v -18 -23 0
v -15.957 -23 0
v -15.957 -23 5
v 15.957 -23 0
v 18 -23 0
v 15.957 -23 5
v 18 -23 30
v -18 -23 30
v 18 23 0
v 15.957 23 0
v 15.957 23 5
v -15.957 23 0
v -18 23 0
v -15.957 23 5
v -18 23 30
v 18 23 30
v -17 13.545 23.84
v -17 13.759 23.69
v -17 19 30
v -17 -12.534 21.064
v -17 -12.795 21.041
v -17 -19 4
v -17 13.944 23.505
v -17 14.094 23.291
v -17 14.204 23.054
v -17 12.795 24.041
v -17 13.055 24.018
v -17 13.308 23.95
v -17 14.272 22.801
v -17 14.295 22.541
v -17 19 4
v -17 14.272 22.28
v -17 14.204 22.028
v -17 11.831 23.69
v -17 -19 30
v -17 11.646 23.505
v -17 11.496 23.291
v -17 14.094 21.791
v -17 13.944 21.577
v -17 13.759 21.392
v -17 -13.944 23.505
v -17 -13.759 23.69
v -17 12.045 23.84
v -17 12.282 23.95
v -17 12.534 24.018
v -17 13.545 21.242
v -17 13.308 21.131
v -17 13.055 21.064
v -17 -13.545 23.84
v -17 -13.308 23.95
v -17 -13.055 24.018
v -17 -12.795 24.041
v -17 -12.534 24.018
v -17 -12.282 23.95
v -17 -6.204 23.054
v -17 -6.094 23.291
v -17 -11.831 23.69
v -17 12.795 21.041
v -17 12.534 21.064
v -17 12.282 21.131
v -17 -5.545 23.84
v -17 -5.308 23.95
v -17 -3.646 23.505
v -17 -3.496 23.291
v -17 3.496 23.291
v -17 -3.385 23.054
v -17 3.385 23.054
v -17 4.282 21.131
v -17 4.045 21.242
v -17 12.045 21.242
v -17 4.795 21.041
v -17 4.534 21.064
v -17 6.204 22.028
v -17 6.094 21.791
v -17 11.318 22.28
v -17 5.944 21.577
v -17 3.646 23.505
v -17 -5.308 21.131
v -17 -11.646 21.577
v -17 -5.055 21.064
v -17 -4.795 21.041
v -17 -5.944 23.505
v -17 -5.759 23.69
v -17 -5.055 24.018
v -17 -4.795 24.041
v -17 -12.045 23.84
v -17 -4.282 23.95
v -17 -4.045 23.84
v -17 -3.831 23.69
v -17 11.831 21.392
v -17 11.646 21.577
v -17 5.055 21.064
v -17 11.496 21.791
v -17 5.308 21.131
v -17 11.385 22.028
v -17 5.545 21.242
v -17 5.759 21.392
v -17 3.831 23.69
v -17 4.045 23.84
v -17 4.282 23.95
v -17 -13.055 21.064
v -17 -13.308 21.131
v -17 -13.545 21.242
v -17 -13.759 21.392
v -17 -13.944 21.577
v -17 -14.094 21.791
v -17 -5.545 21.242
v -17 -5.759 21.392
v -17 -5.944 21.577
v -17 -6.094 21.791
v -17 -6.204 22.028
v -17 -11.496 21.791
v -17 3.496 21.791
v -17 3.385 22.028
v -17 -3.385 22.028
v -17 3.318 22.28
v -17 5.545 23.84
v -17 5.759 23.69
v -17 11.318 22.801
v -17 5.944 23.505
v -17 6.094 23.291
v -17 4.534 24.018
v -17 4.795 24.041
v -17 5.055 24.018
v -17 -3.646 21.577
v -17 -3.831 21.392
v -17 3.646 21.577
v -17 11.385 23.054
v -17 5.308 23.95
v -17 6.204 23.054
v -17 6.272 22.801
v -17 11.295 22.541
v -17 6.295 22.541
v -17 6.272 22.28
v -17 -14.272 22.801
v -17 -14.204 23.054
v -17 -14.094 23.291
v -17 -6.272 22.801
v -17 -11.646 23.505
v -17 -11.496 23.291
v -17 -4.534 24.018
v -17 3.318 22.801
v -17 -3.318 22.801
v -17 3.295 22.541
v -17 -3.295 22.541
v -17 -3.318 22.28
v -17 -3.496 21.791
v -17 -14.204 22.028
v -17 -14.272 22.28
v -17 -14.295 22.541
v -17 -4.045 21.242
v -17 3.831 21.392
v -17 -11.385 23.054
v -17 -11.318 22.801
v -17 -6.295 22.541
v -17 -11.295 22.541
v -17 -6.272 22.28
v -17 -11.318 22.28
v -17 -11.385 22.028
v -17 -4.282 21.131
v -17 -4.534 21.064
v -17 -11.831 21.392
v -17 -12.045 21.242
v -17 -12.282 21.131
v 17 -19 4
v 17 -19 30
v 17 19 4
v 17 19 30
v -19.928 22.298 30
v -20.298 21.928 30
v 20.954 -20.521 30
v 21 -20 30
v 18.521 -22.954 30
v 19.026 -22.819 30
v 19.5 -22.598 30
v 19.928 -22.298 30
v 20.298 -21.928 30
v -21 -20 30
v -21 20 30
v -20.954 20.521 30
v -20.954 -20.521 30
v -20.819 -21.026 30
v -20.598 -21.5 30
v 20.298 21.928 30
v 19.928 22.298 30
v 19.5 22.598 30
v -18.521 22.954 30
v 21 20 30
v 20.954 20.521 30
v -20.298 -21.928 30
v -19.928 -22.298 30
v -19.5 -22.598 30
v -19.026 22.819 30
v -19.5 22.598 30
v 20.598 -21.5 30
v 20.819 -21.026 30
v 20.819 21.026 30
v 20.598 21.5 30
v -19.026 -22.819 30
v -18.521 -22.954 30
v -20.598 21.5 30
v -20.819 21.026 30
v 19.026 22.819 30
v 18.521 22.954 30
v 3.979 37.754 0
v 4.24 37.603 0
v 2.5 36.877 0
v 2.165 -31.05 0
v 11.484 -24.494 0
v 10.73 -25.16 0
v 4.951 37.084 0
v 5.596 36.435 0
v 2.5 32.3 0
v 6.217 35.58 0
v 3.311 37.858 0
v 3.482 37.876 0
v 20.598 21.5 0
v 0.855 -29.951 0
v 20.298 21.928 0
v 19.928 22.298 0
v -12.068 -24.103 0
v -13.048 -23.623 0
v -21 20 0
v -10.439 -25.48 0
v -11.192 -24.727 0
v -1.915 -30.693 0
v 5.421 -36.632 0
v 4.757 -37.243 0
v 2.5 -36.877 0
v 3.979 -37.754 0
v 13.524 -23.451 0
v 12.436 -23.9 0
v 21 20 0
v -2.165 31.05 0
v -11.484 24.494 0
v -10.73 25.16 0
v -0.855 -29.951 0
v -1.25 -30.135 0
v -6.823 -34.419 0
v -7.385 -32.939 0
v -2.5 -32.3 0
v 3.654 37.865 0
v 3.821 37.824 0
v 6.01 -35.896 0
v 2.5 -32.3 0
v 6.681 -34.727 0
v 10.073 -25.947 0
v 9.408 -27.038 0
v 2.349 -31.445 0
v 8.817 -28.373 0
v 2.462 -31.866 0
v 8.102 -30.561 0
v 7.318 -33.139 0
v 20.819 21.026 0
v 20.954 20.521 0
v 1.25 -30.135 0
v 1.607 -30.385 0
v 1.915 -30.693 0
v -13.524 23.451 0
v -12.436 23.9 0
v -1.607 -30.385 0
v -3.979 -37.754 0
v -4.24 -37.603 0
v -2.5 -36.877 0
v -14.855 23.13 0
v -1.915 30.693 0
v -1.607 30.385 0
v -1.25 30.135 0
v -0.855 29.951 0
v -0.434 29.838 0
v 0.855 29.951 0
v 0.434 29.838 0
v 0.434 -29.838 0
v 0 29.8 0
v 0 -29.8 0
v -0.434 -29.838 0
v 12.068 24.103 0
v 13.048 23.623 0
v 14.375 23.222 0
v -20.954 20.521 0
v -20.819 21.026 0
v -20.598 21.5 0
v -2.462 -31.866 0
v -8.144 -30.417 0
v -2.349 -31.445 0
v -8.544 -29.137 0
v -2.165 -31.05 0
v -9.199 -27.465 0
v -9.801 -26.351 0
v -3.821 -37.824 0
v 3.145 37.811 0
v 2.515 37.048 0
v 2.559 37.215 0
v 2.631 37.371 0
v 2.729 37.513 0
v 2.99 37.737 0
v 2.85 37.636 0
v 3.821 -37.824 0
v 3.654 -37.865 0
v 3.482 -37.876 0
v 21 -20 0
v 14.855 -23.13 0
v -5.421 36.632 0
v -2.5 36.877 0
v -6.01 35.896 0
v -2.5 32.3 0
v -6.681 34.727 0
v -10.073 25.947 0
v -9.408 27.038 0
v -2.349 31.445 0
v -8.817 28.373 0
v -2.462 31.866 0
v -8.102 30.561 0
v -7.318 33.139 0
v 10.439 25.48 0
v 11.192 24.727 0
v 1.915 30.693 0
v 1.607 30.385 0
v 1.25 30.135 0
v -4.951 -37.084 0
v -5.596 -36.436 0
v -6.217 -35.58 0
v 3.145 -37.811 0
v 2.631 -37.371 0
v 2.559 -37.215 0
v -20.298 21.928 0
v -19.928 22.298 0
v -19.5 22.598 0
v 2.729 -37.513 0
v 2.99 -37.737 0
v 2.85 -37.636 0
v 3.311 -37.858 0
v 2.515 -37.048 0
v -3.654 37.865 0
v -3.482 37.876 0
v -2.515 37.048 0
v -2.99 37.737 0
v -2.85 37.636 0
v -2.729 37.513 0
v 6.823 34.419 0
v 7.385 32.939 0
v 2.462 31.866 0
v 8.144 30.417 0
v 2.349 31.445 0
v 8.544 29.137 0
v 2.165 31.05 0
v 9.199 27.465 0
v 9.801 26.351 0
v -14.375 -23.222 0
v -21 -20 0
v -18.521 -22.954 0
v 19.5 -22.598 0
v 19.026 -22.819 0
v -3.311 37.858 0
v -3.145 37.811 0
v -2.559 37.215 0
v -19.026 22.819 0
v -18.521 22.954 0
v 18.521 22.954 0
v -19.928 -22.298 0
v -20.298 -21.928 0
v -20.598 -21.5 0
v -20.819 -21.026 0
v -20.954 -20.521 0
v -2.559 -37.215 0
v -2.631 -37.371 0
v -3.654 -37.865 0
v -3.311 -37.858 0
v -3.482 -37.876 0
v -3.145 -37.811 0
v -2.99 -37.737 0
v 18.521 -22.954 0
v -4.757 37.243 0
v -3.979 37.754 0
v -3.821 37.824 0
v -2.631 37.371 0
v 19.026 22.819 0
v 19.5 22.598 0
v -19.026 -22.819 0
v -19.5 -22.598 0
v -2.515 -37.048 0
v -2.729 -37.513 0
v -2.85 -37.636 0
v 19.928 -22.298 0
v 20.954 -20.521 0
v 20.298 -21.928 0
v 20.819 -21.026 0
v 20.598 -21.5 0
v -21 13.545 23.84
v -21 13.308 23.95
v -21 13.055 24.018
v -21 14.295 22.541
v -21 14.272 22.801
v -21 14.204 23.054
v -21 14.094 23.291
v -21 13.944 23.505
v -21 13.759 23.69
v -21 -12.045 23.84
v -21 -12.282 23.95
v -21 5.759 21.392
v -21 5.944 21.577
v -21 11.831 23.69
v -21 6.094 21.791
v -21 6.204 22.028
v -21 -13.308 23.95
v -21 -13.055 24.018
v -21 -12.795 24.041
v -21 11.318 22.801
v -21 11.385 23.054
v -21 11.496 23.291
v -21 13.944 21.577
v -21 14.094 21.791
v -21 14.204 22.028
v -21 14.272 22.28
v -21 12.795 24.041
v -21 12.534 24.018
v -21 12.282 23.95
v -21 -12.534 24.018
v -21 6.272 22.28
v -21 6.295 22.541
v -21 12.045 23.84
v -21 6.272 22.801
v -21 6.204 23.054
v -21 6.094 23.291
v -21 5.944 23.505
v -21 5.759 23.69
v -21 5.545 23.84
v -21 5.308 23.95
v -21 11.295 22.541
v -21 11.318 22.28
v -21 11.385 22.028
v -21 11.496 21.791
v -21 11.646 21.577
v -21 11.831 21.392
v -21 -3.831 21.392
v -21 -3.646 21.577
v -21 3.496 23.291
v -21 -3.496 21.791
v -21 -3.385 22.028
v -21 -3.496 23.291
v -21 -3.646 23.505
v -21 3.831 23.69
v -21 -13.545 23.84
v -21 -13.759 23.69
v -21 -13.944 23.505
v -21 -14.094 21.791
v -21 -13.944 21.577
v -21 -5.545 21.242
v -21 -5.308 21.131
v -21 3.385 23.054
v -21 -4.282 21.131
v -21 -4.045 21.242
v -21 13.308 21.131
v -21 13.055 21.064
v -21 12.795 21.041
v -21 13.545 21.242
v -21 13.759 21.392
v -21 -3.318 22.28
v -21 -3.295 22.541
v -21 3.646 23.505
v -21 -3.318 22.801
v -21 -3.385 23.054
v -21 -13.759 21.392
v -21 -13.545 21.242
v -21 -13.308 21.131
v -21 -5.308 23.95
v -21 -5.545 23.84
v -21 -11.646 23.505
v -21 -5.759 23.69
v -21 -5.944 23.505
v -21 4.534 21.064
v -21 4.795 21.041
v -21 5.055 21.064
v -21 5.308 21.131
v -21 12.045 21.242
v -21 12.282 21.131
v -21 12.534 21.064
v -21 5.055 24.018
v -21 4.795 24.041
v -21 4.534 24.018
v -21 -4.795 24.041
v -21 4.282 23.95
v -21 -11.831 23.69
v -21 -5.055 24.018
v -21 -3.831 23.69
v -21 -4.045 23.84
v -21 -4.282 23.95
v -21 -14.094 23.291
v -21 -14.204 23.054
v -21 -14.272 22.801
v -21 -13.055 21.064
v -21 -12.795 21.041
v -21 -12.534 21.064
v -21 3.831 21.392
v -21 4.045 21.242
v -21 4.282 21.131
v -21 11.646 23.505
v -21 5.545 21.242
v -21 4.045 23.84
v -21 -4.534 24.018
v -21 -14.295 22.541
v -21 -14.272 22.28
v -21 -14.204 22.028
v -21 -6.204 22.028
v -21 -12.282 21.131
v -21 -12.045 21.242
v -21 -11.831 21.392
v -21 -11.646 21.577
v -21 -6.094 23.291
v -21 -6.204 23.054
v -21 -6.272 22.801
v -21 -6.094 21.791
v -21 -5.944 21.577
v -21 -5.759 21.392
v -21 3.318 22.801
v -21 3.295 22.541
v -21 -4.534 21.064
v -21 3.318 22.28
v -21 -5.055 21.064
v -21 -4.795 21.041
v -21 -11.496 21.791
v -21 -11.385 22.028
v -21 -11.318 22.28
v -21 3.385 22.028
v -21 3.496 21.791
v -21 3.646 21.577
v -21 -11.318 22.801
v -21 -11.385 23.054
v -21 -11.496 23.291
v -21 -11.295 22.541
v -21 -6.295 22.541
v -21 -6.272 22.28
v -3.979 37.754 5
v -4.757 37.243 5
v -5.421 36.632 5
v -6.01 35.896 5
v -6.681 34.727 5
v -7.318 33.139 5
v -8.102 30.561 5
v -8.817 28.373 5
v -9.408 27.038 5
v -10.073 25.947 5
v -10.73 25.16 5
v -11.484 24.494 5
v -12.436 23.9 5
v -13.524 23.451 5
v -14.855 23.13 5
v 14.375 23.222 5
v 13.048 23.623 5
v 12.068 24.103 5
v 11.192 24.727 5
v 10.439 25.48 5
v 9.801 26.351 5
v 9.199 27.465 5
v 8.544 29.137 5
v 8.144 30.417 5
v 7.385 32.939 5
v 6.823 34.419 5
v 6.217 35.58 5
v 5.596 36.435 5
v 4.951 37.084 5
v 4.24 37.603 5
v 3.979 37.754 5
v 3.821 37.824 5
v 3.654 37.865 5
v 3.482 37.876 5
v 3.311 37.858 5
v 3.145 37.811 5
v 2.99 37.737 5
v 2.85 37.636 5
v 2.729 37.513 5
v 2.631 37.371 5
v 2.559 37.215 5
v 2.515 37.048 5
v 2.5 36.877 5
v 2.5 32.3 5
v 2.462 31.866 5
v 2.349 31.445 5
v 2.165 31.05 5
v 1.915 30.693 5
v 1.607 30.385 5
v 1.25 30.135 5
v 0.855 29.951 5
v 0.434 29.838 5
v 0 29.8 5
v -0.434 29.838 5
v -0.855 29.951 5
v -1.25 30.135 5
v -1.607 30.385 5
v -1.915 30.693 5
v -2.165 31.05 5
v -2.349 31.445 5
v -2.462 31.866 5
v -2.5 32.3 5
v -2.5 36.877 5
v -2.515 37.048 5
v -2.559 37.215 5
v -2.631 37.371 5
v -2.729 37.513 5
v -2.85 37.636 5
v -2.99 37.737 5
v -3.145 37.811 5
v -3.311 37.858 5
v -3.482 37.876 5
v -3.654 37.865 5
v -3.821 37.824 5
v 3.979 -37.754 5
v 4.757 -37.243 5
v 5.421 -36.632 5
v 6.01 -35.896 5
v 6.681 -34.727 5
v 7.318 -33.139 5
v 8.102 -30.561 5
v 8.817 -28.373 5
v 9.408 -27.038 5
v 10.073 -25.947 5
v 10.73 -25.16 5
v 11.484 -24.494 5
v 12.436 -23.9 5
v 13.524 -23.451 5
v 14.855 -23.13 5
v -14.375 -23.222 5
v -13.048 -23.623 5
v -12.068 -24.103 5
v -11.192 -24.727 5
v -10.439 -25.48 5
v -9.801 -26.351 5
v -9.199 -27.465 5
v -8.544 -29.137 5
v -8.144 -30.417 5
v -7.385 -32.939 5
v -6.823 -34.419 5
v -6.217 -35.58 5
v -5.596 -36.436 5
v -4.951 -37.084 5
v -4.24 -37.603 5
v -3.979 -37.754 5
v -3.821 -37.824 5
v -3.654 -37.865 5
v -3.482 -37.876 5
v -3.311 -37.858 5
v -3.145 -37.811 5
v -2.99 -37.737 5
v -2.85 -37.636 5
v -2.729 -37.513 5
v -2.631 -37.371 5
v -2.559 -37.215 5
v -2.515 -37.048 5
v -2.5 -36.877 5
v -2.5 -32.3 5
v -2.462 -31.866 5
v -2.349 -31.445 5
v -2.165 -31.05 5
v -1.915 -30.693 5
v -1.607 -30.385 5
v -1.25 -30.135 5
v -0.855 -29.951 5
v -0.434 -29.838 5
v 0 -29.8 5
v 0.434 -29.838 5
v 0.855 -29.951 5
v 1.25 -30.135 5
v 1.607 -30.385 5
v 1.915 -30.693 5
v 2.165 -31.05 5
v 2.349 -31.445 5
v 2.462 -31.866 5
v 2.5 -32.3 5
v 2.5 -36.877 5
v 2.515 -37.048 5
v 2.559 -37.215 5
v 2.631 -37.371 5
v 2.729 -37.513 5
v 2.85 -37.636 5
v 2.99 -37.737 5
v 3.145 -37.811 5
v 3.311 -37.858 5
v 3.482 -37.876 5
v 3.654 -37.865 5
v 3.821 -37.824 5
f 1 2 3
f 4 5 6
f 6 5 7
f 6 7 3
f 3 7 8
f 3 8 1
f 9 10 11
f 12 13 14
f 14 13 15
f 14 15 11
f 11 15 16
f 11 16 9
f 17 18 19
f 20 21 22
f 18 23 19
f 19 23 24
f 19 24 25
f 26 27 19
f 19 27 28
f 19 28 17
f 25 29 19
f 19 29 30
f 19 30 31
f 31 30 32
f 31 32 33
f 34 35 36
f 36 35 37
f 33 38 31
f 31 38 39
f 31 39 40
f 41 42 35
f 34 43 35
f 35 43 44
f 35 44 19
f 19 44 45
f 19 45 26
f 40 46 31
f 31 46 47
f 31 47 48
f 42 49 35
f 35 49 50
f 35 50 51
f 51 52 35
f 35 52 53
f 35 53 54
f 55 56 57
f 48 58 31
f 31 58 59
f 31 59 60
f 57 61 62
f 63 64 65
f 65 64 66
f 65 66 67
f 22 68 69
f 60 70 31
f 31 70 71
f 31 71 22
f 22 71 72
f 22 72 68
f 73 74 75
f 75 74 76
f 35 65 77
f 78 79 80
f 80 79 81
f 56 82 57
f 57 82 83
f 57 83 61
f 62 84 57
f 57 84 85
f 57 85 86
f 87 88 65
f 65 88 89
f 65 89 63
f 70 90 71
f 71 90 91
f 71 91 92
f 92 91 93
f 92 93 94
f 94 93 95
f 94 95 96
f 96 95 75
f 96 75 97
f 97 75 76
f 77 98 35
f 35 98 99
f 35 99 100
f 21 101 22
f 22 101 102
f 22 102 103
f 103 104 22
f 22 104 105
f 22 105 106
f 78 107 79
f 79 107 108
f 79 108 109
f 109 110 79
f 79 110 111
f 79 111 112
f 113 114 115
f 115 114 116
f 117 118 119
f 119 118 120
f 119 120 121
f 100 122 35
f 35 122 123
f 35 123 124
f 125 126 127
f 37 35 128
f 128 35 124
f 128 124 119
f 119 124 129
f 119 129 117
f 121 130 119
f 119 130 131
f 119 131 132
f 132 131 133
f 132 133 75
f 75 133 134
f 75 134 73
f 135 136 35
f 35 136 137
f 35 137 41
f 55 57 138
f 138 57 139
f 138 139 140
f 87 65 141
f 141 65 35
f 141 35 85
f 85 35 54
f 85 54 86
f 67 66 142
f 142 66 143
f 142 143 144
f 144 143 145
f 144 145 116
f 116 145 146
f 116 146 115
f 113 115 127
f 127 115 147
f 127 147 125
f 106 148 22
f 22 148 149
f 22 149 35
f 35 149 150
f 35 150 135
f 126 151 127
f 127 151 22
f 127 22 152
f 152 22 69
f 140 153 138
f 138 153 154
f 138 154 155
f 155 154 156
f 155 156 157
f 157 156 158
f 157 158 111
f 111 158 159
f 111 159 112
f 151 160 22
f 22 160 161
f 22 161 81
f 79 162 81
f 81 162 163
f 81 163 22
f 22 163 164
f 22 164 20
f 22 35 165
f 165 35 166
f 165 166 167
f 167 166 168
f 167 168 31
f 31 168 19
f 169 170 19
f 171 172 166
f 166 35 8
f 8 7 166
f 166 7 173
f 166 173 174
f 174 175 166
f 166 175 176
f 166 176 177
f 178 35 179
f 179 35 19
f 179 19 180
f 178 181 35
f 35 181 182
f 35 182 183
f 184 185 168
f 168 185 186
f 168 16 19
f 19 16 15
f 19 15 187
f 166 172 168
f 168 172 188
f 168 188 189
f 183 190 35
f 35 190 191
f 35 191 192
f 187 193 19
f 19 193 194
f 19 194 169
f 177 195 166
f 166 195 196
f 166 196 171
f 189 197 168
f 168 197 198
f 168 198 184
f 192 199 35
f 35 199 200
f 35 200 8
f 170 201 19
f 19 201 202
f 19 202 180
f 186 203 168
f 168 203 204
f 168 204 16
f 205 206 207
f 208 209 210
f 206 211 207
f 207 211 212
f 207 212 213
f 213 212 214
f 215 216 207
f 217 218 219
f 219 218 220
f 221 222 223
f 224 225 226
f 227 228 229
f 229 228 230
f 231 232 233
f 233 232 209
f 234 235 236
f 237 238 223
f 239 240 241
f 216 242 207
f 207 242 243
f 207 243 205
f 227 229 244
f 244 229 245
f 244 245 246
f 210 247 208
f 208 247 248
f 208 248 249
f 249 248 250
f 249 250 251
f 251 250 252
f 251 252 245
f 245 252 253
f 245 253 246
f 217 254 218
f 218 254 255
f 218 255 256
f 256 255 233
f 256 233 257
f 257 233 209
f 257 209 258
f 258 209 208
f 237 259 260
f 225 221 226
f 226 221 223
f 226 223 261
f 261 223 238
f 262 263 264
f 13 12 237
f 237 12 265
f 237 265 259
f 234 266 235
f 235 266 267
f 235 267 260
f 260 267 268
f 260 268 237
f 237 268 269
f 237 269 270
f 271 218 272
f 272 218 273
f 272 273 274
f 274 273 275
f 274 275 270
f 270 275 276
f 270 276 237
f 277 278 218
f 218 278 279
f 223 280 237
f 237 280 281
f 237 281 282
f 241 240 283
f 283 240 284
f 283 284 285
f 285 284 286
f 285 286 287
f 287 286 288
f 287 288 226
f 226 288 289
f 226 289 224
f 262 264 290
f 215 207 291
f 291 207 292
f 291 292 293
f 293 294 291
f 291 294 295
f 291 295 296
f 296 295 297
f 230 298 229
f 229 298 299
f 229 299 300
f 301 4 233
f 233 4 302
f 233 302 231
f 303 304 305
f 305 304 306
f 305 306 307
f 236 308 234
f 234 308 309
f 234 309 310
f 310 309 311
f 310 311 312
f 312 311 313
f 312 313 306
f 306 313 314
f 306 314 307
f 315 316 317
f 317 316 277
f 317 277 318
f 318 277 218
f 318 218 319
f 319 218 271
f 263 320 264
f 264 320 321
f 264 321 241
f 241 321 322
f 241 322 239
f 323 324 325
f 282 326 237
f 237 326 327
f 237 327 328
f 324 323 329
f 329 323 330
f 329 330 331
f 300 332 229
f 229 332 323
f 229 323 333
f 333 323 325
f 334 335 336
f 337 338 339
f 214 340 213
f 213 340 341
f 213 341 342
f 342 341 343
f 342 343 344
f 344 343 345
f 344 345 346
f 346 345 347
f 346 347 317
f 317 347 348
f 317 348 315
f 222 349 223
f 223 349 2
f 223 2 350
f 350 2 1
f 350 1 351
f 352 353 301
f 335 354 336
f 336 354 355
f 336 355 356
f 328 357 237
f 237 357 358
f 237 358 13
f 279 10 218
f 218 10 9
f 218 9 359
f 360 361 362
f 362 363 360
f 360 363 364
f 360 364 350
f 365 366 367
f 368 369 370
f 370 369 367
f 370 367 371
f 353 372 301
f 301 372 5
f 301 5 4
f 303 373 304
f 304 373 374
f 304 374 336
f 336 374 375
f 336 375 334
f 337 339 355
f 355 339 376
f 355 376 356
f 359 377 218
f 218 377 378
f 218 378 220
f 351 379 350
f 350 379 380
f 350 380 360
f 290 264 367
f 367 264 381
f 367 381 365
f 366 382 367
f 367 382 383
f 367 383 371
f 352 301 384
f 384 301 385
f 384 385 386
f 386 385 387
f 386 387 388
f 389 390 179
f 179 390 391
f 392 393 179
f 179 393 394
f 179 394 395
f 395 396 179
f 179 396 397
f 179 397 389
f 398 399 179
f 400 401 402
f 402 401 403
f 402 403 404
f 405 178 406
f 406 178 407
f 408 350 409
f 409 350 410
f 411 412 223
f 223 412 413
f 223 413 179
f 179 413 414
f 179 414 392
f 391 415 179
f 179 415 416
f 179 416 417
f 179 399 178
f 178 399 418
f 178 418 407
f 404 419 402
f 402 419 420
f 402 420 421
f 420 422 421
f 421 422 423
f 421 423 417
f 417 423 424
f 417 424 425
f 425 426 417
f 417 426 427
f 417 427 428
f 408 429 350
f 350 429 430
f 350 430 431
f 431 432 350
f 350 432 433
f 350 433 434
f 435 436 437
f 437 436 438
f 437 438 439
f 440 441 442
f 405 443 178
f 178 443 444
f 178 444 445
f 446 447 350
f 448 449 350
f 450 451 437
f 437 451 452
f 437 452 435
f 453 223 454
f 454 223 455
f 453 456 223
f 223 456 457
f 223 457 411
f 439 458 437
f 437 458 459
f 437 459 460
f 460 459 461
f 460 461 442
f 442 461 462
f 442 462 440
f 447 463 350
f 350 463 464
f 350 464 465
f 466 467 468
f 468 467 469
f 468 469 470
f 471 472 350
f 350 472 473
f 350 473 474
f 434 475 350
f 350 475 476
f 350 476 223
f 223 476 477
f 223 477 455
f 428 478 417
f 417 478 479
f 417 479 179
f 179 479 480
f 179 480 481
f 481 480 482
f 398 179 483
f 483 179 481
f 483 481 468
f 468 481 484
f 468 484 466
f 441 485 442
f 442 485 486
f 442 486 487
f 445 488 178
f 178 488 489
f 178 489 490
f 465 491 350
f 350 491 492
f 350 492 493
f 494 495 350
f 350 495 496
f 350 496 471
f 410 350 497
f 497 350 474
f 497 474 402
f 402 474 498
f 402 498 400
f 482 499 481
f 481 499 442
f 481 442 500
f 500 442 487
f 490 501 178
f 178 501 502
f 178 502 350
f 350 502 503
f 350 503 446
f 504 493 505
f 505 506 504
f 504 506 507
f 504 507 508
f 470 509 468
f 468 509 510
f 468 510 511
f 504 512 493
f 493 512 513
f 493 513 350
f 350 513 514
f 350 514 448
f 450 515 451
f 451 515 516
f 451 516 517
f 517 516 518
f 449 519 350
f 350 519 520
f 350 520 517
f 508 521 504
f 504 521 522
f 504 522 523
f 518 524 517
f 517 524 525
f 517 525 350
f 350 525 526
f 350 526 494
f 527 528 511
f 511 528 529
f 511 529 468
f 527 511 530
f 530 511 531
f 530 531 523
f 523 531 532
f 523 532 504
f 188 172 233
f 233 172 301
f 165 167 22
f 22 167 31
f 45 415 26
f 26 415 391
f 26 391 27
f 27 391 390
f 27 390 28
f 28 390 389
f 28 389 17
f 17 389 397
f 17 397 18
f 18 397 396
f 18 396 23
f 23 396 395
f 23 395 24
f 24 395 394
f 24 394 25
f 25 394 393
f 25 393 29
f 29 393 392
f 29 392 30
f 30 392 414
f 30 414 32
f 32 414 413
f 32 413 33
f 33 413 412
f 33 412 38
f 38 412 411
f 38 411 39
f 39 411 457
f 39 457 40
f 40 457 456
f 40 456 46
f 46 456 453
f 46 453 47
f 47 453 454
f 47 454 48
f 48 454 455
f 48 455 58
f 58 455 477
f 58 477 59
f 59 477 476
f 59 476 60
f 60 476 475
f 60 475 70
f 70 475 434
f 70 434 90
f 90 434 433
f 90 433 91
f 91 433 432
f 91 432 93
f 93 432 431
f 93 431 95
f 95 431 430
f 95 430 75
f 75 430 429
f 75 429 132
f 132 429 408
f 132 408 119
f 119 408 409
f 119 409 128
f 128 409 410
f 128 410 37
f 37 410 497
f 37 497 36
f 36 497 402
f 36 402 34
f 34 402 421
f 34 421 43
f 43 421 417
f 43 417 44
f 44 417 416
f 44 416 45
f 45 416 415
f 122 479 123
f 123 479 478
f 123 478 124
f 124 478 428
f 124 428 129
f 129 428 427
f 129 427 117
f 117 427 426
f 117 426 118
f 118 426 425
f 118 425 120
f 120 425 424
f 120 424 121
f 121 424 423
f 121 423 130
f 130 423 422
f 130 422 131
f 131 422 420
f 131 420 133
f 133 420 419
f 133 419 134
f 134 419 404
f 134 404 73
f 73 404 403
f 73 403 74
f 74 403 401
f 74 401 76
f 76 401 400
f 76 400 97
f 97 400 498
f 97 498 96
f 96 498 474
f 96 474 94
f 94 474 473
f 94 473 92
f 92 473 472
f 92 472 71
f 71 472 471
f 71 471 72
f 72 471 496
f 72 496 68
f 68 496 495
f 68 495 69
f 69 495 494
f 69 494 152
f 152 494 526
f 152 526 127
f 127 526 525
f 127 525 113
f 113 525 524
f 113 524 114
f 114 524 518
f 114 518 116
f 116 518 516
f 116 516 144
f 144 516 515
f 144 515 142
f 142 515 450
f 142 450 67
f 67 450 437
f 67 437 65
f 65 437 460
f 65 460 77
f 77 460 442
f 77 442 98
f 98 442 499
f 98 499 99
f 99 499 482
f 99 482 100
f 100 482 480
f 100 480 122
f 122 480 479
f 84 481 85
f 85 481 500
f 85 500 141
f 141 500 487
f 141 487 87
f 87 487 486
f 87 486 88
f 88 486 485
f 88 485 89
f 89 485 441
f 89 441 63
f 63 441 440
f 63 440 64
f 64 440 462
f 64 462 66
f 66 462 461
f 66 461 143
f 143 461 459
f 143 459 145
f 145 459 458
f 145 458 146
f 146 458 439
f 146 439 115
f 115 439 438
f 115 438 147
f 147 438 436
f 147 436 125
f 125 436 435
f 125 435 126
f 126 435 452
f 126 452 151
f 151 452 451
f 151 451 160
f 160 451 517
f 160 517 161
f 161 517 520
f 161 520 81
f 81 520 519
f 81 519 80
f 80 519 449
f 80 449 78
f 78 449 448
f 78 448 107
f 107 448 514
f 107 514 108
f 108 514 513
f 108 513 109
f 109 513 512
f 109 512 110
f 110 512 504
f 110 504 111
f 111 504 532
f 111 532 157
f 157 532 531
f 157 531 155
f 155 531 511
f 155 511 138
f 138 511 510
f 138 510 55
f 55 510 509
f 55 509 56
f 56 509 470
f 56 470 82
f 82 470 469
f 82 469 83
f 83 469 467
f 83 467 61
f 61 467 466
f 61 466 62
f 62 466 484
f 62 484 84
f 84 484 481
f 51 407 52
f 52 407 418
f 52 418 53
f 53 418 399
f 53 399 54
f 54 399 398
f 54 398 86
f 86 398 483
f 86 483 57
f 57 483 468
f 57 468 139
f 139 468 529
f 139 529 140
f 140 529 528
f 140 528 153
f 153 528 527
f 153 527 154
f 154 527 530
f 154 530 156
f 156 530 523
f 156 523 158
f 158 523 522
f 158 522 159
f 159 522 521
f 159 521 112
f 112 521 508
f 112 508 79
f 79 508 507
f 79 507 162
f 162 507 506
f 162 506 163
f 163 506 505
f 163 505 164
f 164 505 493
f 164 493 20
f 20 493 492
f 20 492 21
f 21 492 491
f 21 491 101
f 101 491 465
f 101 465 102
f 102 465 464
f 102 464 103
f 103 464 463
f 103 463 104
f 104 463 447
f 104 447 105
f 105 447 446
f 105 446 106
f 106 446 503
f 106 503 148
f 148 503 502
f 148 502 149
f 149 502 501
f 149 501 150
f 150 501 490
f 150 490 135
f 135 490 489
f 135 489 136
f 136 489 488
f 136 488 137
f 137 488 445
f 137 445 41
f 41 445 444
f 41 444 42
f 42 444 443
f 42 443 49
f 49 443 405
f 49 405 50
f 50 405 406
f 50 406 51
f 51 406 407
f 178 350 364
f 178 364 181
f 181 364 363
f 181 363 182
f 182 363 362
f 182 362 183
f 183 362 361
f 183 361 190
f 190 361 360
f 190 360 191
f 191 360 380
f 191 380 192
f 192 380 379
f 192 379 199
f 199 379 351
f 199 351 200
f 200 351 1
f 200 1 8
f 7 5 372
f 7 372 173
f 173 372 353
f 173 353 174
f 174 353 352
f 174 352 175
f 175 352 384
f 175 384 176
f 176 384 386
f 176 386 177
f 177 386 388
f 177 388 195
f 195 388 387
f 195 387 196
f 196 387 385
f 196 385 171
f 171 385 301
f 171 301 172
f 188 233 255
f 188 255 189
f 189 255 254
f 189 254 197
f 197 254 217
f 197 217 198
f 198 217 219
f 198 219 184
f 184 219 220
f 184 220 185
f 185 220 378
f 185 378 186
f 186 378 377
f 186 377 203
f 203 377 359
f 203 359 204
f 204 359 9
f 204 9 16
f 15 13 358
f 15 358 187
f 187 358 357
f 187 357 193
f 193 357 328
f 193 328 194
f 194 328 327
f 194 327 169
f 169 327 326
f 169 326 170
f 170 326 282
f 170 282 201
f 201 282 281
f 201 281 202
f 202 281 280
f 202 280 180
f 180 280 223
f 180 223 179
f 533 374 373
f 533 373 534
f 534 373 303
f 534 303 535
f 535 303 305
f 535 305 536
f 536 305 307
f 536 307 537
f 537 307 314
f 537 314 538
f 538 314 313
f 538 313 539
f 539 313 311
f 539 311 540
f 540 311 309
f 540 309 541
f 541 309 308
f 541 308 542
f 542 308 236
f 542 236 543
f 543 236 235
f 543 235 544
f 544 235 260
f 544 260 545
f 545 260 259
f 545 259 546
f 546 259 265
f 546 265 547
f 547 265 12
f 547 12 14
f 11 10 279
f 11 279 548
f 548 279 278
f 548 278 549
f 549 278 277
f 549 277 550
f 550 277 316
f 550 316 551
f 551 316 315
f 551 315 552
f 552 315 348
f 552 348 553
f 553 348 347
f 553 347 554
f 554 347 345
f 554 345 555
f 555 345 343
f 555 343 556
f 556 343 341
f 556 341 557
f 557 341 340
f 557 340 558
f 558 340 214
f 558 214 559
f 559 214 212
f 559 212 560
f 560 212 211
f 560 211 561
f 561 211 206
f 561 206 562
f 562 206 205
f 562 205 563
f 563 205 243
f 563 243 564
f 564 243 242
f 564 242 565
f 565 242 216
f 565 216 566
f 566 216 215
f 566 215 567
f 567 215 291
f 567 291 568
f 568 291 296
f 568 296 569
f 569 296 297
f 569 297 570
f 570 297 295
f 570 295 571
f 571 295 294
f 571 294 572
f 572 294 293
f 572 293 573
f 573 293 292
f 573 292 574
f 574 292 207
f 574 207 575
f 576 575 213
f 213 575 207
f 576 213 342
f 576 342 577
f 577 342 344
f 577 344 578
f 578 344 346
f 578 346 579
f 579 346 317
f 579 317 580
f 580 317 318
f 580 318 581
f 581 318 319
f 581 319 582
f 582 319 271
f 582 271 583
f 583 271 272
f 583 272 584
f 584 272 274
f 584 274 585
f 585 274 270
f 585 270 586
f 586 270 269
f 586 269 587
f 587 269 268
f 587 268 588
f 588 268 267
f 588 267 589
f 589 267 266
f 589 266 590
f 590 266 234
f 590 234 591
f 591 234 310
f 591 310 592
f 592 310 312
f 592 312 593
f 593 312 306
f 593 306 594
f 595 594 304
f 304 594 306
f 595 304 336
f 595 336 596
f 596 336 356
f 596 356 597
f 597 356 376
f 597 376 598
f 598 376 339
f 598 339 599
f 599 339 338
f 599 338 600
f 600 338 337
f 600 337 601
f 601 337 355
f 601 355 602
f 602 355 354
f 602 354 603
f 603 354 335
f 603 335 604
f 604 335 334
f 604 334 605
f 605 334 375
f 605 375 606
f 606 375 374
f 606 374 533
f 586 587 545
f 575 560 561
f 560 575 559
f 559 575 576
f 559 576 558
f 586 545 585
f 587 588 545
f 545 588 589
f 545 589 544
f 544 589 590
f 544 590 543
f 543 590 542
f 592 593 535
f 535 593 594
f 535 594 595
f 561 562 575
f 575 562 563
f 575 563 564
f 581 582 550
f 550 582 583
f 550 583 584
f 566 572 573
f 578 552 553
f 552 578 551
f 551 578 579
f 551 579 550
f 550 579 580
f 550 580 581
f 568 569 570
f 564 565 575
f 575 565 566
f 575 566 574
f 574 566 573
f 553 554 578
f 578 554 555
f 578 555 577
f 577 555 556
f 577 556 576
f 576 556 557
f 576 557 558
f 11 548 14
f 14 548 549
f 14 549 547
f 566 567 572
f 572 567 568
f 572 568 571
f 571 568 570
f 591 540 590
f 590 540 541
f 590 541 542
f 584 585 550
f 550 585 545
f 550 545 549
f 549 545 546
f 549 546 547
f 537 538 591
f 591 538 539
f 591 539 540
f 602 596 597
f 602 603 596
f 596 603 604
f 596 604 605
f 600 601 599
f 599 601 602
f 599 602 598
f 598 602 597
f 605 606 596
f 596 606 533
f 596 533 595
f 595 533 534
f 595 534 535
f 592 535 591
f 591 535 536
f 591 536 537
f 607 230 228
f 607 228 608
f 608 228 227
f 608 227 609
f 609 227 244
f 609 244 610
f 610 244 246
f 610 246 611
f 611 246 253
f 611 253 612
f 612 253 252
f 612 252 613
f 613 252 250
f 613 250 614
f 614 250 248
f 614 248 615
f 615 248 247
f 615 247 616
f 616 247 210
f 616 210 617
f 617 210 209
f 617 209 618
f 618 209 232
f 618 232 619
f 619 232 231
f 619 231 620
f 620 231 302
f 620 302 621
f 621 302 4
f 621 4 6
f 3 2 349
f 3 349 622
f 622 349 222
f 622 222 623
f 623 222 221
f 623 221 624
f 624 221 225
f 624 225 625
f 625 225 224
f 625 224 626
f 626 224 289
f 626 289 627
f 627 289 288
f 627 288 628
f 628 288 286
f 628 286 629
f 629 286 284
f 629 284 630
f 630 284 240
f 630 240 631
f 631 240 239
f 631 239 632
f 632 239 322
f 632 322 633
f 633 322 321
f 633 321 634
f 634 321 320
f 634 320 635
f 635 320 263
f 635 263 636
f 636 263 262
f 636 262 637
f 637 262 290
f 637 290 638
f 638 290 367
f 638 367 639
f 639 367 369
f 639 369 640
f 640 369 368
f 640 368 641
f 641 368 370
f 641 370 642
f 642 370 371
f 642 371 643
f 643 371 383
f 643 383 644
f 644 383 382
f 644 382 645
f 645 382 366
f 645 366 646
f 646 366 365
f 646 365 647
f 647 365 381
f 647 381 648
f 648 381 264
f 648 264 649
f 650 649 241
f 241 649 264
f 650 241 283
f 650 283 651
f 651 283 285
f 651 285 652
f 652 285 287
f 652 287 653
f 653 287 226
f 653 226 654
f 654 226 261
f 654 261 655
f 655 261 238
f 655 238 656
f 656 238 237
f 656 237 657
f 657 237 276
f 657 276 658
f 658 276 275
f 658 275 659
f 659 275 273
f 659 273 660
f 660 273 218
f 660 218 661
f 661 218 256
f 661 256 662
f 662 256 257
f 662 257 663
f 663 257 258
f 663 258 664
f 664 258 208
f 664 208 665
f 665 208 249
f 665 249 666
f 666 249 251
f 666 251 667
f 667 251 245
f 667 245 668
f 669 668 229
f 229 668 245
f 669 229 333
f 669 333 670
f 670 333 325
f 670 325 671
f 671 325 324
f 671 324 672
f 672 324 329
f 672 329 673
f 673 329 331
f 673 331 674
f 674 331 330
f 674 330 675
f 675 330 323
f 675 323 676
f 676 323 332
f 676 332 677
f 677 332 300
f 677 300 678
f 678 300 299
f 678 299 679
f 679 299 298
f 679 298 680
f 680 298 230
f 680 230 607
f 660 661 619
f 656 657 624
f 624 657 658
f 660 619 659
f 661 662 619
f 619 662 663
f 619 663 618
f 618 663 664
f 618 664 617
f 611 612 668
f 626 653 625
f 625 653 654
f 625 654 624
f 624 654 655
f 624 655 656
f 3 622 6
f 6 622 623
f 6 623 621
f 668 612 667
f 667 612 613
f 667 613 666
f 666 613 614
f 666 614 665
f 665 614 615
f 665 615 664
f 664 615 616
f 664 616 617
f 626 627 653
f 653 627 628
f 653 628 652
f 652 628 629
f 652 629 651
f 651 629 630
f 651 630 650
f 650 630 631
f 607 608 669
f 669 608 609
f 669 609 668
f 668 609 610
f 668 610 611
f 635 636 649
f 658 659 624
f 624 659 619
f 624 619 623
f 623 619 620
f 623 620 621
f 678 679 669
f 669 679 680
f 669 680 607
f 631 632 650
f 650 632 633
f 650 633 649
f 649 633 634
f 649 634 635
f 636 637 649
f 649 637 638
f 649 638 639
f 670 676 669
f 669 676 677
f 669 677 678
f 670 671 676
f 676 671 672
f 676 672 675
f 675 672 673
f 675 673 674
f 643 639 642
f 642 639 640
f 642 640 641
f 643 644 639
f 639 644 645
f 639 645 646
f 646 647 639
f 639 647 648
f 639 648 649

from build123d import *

# Parameters (mm, degrees)
SCHIZZO1_W                   = 42
SCHIZZO1_H                   = 46
SCHIZZO1_W_2                 = 34
SCHIZZO1_H_2                 = 38
ESTRUSIONE_SOTTILE1_DEPTH    = 30
SCHIZZO2_W                   = 42
SCHIZZO2_H                   = 46
ESTRUSIONE_ESTRUSIONE1_DEPTH = 4
SCHIZZO4_R                   = 1.5
TAGLIO_ESTRUSIONE1_DEPTH     = 4
RACCORDO1_R                  = 3
RACCORDO2_R                  = 3
RACCORDO3_R                  = 3
RACCORDO4_R                  = 3
ESTRUSIONE_ESTRUSIONE3_DEPTH = 5


with BuildPart() as part:
    # Schizzo1 → Estrusione-Sottile1 (new body)
    with BuildSketch(Plane.XY):
        Rectangle(SCHIZZO1_W, SCHIZZO1_H)
        Rectangle(SCHIZZO1_W_2, SCHIZZO1_H_2, mode=Mode.SUBTRACT)
    extrude(amount=ESTRUSIONE_SOTTILE1_DEPTH)

    # Schizzo2 → Estrusione-Estrusione1 (add)
    with BuildSketch(Plane.XY):
        Rectangle(SCHIZZO2_W, SCHIZZO2_H)
    extrude(amount=ESTRUSIONE_ESTRUSIONE1_DEPTH)

    # Schizzo4 → Taglio-Estrusione1 (cut)
    with BuildSketch(Plane.ZY.offset(21)):
        with Locations((22.540727145, 12.794949591)):
            Circle(SCHIZZO4_R)
        with Locations((22.540727145, 4.794949591)):
            Circle(SCHIZZO4_R)
        with Locations(Location((22.540727145, -4.794949591, 0), (0, 0, 180))):
            Circle(SCHIZZO4_R)
        with Locations(Location((22.540727145, -12.794949591, 0), (0, 0, 180))):
            Circle(SCHIZZO4_R)
    extrude(amount=-TAGLIO_ESTRUSIONE1_DEPTH, mode=Mode.SUBTRACT)

    # Raccordo1
    raccordo1_edges = [part.edges().sort_by_distance(p)[0] for p in [
        (-21, -23, 15),
    ]]
    fillet(raccordo1_edges, radius=RACCORDO1_R)

    # Raccordo2
    raccordo2_edges = [part.edges().sort_by_distance(p)[0] for p in [
        (21, -23, 15),
    ]]
    fillet(raccordo2_edges, radius=RACCORDO2_R)

    # Raccordo3
    raccordo3_edges = [part.edges().sort_by_distance(p)[0] for p in [
        (21, 23, 15),
    ]]
    fillet(raccordo3_edges, radius=RACCORDO3_R)

    # Raccordo4
    raccordo4_edges = [part.edges().sort_by_distance(p)[0] for p in [
        (-21, 23, 15),
    ]]
    fillet(raccordo4_edges, radius=RACCORDO4_R)

    # Schizzo3 → Estrusione-Estrusione3 (add)
    with BuildSketch(Plane.XY):
        with BuildLine():
            Line((-15.956647945, 23), (15.956647945, 23))
            add(Edge.make_bspline(
                [(15.956647945, 23), (8.114099812, 23.565784933), (9.021988807, 32.329235039), (5.183827034, 37.096841948), (3.979062469, 37.754360864)],
                knots=[0, 0, 0, 0, 0.676224636, 0.852915934, 0.852915934, 0.852915934, 0.852915934], degree=3))
            ThreePointArc((3.979062469, 37.754360864), (2.989638593, 37.736540073), (2.5, 36.876580054))
            Line((2.5, 36.876580054), (2.5, 32.299789094))
            ThreePointArc((2.5, 32.299789094), (0, 29.799789094), (-2.5, 32.299789094))
            Line((-2.5, 32.299789094), (-2.5, 36.876580054))
            ThreePointArc((-2.5, 36.876580054), (-2.989638593, 37.736540073), (-3.979062469, 37.754360864))
            add(Edge.make_bspline(
                [(-15.956647945, 23), (-8.114099812, 23.565784933), (-9.021988807, 32.329235039), (-5.183827034, 37.096841948), (-3.979062469, 37.754360864)],
                knots=[0, 0, 0, 0, 0.676224636, 0.852915934, 0.852915934, 0.852915934, 0.852915934], degree=3))
        make_face()
        with BuildLine():
            Line((2.5, -32.299789094), (2.5, -36.876580054))
            ThreePointArc((2.5, -36.876580054), (2.989638593, -37.736540073), (3.979062469, -37.754360864))
            add(Edge.make_bspline(
                [(15.956647945, -23), (8.114099812, -23.565784933), (9.021988807, -32.329235039), (5.183827034, -37.096841948), (3.979062469, -37.754360864)],
                knots=[0, 0, 0, 0, 0.676224636, 0.852915934, 0.852915934, 0.852915934, 0.852915934], degree=3))
            Line((15.956647945, -23), (-15.956647945, -23))
            add(Edge.make_bspline(
                [(-15.956647945, -23), (-8.114099812, -23.565784933), (-9.021988807, -32.329235039), (-5.183827034, -37.096841948), (-3.979062469, -37.754360864)],
                knots=[0, 0, 0, 0, 0.676224636, 0.852915934, 0.852915934, 0.852915934, 0.852915934], degree=3))
            ThreePointArc((-3.979062469, -37.754360864), (-2.989638593, -37.736540073), (-2.5, -36.876580054))
            Line((-2.5, -36.876580054), (-2.5, -32.299789094))
            ThreePointArc((-2.5, -32.299789094), (0, -29.799789094), (2.5, -32.299789094))
        make_face()
    extrude(amount=ESTRUSIONE_ESTRUSIONE3_DEPTH)


solid = part.part
